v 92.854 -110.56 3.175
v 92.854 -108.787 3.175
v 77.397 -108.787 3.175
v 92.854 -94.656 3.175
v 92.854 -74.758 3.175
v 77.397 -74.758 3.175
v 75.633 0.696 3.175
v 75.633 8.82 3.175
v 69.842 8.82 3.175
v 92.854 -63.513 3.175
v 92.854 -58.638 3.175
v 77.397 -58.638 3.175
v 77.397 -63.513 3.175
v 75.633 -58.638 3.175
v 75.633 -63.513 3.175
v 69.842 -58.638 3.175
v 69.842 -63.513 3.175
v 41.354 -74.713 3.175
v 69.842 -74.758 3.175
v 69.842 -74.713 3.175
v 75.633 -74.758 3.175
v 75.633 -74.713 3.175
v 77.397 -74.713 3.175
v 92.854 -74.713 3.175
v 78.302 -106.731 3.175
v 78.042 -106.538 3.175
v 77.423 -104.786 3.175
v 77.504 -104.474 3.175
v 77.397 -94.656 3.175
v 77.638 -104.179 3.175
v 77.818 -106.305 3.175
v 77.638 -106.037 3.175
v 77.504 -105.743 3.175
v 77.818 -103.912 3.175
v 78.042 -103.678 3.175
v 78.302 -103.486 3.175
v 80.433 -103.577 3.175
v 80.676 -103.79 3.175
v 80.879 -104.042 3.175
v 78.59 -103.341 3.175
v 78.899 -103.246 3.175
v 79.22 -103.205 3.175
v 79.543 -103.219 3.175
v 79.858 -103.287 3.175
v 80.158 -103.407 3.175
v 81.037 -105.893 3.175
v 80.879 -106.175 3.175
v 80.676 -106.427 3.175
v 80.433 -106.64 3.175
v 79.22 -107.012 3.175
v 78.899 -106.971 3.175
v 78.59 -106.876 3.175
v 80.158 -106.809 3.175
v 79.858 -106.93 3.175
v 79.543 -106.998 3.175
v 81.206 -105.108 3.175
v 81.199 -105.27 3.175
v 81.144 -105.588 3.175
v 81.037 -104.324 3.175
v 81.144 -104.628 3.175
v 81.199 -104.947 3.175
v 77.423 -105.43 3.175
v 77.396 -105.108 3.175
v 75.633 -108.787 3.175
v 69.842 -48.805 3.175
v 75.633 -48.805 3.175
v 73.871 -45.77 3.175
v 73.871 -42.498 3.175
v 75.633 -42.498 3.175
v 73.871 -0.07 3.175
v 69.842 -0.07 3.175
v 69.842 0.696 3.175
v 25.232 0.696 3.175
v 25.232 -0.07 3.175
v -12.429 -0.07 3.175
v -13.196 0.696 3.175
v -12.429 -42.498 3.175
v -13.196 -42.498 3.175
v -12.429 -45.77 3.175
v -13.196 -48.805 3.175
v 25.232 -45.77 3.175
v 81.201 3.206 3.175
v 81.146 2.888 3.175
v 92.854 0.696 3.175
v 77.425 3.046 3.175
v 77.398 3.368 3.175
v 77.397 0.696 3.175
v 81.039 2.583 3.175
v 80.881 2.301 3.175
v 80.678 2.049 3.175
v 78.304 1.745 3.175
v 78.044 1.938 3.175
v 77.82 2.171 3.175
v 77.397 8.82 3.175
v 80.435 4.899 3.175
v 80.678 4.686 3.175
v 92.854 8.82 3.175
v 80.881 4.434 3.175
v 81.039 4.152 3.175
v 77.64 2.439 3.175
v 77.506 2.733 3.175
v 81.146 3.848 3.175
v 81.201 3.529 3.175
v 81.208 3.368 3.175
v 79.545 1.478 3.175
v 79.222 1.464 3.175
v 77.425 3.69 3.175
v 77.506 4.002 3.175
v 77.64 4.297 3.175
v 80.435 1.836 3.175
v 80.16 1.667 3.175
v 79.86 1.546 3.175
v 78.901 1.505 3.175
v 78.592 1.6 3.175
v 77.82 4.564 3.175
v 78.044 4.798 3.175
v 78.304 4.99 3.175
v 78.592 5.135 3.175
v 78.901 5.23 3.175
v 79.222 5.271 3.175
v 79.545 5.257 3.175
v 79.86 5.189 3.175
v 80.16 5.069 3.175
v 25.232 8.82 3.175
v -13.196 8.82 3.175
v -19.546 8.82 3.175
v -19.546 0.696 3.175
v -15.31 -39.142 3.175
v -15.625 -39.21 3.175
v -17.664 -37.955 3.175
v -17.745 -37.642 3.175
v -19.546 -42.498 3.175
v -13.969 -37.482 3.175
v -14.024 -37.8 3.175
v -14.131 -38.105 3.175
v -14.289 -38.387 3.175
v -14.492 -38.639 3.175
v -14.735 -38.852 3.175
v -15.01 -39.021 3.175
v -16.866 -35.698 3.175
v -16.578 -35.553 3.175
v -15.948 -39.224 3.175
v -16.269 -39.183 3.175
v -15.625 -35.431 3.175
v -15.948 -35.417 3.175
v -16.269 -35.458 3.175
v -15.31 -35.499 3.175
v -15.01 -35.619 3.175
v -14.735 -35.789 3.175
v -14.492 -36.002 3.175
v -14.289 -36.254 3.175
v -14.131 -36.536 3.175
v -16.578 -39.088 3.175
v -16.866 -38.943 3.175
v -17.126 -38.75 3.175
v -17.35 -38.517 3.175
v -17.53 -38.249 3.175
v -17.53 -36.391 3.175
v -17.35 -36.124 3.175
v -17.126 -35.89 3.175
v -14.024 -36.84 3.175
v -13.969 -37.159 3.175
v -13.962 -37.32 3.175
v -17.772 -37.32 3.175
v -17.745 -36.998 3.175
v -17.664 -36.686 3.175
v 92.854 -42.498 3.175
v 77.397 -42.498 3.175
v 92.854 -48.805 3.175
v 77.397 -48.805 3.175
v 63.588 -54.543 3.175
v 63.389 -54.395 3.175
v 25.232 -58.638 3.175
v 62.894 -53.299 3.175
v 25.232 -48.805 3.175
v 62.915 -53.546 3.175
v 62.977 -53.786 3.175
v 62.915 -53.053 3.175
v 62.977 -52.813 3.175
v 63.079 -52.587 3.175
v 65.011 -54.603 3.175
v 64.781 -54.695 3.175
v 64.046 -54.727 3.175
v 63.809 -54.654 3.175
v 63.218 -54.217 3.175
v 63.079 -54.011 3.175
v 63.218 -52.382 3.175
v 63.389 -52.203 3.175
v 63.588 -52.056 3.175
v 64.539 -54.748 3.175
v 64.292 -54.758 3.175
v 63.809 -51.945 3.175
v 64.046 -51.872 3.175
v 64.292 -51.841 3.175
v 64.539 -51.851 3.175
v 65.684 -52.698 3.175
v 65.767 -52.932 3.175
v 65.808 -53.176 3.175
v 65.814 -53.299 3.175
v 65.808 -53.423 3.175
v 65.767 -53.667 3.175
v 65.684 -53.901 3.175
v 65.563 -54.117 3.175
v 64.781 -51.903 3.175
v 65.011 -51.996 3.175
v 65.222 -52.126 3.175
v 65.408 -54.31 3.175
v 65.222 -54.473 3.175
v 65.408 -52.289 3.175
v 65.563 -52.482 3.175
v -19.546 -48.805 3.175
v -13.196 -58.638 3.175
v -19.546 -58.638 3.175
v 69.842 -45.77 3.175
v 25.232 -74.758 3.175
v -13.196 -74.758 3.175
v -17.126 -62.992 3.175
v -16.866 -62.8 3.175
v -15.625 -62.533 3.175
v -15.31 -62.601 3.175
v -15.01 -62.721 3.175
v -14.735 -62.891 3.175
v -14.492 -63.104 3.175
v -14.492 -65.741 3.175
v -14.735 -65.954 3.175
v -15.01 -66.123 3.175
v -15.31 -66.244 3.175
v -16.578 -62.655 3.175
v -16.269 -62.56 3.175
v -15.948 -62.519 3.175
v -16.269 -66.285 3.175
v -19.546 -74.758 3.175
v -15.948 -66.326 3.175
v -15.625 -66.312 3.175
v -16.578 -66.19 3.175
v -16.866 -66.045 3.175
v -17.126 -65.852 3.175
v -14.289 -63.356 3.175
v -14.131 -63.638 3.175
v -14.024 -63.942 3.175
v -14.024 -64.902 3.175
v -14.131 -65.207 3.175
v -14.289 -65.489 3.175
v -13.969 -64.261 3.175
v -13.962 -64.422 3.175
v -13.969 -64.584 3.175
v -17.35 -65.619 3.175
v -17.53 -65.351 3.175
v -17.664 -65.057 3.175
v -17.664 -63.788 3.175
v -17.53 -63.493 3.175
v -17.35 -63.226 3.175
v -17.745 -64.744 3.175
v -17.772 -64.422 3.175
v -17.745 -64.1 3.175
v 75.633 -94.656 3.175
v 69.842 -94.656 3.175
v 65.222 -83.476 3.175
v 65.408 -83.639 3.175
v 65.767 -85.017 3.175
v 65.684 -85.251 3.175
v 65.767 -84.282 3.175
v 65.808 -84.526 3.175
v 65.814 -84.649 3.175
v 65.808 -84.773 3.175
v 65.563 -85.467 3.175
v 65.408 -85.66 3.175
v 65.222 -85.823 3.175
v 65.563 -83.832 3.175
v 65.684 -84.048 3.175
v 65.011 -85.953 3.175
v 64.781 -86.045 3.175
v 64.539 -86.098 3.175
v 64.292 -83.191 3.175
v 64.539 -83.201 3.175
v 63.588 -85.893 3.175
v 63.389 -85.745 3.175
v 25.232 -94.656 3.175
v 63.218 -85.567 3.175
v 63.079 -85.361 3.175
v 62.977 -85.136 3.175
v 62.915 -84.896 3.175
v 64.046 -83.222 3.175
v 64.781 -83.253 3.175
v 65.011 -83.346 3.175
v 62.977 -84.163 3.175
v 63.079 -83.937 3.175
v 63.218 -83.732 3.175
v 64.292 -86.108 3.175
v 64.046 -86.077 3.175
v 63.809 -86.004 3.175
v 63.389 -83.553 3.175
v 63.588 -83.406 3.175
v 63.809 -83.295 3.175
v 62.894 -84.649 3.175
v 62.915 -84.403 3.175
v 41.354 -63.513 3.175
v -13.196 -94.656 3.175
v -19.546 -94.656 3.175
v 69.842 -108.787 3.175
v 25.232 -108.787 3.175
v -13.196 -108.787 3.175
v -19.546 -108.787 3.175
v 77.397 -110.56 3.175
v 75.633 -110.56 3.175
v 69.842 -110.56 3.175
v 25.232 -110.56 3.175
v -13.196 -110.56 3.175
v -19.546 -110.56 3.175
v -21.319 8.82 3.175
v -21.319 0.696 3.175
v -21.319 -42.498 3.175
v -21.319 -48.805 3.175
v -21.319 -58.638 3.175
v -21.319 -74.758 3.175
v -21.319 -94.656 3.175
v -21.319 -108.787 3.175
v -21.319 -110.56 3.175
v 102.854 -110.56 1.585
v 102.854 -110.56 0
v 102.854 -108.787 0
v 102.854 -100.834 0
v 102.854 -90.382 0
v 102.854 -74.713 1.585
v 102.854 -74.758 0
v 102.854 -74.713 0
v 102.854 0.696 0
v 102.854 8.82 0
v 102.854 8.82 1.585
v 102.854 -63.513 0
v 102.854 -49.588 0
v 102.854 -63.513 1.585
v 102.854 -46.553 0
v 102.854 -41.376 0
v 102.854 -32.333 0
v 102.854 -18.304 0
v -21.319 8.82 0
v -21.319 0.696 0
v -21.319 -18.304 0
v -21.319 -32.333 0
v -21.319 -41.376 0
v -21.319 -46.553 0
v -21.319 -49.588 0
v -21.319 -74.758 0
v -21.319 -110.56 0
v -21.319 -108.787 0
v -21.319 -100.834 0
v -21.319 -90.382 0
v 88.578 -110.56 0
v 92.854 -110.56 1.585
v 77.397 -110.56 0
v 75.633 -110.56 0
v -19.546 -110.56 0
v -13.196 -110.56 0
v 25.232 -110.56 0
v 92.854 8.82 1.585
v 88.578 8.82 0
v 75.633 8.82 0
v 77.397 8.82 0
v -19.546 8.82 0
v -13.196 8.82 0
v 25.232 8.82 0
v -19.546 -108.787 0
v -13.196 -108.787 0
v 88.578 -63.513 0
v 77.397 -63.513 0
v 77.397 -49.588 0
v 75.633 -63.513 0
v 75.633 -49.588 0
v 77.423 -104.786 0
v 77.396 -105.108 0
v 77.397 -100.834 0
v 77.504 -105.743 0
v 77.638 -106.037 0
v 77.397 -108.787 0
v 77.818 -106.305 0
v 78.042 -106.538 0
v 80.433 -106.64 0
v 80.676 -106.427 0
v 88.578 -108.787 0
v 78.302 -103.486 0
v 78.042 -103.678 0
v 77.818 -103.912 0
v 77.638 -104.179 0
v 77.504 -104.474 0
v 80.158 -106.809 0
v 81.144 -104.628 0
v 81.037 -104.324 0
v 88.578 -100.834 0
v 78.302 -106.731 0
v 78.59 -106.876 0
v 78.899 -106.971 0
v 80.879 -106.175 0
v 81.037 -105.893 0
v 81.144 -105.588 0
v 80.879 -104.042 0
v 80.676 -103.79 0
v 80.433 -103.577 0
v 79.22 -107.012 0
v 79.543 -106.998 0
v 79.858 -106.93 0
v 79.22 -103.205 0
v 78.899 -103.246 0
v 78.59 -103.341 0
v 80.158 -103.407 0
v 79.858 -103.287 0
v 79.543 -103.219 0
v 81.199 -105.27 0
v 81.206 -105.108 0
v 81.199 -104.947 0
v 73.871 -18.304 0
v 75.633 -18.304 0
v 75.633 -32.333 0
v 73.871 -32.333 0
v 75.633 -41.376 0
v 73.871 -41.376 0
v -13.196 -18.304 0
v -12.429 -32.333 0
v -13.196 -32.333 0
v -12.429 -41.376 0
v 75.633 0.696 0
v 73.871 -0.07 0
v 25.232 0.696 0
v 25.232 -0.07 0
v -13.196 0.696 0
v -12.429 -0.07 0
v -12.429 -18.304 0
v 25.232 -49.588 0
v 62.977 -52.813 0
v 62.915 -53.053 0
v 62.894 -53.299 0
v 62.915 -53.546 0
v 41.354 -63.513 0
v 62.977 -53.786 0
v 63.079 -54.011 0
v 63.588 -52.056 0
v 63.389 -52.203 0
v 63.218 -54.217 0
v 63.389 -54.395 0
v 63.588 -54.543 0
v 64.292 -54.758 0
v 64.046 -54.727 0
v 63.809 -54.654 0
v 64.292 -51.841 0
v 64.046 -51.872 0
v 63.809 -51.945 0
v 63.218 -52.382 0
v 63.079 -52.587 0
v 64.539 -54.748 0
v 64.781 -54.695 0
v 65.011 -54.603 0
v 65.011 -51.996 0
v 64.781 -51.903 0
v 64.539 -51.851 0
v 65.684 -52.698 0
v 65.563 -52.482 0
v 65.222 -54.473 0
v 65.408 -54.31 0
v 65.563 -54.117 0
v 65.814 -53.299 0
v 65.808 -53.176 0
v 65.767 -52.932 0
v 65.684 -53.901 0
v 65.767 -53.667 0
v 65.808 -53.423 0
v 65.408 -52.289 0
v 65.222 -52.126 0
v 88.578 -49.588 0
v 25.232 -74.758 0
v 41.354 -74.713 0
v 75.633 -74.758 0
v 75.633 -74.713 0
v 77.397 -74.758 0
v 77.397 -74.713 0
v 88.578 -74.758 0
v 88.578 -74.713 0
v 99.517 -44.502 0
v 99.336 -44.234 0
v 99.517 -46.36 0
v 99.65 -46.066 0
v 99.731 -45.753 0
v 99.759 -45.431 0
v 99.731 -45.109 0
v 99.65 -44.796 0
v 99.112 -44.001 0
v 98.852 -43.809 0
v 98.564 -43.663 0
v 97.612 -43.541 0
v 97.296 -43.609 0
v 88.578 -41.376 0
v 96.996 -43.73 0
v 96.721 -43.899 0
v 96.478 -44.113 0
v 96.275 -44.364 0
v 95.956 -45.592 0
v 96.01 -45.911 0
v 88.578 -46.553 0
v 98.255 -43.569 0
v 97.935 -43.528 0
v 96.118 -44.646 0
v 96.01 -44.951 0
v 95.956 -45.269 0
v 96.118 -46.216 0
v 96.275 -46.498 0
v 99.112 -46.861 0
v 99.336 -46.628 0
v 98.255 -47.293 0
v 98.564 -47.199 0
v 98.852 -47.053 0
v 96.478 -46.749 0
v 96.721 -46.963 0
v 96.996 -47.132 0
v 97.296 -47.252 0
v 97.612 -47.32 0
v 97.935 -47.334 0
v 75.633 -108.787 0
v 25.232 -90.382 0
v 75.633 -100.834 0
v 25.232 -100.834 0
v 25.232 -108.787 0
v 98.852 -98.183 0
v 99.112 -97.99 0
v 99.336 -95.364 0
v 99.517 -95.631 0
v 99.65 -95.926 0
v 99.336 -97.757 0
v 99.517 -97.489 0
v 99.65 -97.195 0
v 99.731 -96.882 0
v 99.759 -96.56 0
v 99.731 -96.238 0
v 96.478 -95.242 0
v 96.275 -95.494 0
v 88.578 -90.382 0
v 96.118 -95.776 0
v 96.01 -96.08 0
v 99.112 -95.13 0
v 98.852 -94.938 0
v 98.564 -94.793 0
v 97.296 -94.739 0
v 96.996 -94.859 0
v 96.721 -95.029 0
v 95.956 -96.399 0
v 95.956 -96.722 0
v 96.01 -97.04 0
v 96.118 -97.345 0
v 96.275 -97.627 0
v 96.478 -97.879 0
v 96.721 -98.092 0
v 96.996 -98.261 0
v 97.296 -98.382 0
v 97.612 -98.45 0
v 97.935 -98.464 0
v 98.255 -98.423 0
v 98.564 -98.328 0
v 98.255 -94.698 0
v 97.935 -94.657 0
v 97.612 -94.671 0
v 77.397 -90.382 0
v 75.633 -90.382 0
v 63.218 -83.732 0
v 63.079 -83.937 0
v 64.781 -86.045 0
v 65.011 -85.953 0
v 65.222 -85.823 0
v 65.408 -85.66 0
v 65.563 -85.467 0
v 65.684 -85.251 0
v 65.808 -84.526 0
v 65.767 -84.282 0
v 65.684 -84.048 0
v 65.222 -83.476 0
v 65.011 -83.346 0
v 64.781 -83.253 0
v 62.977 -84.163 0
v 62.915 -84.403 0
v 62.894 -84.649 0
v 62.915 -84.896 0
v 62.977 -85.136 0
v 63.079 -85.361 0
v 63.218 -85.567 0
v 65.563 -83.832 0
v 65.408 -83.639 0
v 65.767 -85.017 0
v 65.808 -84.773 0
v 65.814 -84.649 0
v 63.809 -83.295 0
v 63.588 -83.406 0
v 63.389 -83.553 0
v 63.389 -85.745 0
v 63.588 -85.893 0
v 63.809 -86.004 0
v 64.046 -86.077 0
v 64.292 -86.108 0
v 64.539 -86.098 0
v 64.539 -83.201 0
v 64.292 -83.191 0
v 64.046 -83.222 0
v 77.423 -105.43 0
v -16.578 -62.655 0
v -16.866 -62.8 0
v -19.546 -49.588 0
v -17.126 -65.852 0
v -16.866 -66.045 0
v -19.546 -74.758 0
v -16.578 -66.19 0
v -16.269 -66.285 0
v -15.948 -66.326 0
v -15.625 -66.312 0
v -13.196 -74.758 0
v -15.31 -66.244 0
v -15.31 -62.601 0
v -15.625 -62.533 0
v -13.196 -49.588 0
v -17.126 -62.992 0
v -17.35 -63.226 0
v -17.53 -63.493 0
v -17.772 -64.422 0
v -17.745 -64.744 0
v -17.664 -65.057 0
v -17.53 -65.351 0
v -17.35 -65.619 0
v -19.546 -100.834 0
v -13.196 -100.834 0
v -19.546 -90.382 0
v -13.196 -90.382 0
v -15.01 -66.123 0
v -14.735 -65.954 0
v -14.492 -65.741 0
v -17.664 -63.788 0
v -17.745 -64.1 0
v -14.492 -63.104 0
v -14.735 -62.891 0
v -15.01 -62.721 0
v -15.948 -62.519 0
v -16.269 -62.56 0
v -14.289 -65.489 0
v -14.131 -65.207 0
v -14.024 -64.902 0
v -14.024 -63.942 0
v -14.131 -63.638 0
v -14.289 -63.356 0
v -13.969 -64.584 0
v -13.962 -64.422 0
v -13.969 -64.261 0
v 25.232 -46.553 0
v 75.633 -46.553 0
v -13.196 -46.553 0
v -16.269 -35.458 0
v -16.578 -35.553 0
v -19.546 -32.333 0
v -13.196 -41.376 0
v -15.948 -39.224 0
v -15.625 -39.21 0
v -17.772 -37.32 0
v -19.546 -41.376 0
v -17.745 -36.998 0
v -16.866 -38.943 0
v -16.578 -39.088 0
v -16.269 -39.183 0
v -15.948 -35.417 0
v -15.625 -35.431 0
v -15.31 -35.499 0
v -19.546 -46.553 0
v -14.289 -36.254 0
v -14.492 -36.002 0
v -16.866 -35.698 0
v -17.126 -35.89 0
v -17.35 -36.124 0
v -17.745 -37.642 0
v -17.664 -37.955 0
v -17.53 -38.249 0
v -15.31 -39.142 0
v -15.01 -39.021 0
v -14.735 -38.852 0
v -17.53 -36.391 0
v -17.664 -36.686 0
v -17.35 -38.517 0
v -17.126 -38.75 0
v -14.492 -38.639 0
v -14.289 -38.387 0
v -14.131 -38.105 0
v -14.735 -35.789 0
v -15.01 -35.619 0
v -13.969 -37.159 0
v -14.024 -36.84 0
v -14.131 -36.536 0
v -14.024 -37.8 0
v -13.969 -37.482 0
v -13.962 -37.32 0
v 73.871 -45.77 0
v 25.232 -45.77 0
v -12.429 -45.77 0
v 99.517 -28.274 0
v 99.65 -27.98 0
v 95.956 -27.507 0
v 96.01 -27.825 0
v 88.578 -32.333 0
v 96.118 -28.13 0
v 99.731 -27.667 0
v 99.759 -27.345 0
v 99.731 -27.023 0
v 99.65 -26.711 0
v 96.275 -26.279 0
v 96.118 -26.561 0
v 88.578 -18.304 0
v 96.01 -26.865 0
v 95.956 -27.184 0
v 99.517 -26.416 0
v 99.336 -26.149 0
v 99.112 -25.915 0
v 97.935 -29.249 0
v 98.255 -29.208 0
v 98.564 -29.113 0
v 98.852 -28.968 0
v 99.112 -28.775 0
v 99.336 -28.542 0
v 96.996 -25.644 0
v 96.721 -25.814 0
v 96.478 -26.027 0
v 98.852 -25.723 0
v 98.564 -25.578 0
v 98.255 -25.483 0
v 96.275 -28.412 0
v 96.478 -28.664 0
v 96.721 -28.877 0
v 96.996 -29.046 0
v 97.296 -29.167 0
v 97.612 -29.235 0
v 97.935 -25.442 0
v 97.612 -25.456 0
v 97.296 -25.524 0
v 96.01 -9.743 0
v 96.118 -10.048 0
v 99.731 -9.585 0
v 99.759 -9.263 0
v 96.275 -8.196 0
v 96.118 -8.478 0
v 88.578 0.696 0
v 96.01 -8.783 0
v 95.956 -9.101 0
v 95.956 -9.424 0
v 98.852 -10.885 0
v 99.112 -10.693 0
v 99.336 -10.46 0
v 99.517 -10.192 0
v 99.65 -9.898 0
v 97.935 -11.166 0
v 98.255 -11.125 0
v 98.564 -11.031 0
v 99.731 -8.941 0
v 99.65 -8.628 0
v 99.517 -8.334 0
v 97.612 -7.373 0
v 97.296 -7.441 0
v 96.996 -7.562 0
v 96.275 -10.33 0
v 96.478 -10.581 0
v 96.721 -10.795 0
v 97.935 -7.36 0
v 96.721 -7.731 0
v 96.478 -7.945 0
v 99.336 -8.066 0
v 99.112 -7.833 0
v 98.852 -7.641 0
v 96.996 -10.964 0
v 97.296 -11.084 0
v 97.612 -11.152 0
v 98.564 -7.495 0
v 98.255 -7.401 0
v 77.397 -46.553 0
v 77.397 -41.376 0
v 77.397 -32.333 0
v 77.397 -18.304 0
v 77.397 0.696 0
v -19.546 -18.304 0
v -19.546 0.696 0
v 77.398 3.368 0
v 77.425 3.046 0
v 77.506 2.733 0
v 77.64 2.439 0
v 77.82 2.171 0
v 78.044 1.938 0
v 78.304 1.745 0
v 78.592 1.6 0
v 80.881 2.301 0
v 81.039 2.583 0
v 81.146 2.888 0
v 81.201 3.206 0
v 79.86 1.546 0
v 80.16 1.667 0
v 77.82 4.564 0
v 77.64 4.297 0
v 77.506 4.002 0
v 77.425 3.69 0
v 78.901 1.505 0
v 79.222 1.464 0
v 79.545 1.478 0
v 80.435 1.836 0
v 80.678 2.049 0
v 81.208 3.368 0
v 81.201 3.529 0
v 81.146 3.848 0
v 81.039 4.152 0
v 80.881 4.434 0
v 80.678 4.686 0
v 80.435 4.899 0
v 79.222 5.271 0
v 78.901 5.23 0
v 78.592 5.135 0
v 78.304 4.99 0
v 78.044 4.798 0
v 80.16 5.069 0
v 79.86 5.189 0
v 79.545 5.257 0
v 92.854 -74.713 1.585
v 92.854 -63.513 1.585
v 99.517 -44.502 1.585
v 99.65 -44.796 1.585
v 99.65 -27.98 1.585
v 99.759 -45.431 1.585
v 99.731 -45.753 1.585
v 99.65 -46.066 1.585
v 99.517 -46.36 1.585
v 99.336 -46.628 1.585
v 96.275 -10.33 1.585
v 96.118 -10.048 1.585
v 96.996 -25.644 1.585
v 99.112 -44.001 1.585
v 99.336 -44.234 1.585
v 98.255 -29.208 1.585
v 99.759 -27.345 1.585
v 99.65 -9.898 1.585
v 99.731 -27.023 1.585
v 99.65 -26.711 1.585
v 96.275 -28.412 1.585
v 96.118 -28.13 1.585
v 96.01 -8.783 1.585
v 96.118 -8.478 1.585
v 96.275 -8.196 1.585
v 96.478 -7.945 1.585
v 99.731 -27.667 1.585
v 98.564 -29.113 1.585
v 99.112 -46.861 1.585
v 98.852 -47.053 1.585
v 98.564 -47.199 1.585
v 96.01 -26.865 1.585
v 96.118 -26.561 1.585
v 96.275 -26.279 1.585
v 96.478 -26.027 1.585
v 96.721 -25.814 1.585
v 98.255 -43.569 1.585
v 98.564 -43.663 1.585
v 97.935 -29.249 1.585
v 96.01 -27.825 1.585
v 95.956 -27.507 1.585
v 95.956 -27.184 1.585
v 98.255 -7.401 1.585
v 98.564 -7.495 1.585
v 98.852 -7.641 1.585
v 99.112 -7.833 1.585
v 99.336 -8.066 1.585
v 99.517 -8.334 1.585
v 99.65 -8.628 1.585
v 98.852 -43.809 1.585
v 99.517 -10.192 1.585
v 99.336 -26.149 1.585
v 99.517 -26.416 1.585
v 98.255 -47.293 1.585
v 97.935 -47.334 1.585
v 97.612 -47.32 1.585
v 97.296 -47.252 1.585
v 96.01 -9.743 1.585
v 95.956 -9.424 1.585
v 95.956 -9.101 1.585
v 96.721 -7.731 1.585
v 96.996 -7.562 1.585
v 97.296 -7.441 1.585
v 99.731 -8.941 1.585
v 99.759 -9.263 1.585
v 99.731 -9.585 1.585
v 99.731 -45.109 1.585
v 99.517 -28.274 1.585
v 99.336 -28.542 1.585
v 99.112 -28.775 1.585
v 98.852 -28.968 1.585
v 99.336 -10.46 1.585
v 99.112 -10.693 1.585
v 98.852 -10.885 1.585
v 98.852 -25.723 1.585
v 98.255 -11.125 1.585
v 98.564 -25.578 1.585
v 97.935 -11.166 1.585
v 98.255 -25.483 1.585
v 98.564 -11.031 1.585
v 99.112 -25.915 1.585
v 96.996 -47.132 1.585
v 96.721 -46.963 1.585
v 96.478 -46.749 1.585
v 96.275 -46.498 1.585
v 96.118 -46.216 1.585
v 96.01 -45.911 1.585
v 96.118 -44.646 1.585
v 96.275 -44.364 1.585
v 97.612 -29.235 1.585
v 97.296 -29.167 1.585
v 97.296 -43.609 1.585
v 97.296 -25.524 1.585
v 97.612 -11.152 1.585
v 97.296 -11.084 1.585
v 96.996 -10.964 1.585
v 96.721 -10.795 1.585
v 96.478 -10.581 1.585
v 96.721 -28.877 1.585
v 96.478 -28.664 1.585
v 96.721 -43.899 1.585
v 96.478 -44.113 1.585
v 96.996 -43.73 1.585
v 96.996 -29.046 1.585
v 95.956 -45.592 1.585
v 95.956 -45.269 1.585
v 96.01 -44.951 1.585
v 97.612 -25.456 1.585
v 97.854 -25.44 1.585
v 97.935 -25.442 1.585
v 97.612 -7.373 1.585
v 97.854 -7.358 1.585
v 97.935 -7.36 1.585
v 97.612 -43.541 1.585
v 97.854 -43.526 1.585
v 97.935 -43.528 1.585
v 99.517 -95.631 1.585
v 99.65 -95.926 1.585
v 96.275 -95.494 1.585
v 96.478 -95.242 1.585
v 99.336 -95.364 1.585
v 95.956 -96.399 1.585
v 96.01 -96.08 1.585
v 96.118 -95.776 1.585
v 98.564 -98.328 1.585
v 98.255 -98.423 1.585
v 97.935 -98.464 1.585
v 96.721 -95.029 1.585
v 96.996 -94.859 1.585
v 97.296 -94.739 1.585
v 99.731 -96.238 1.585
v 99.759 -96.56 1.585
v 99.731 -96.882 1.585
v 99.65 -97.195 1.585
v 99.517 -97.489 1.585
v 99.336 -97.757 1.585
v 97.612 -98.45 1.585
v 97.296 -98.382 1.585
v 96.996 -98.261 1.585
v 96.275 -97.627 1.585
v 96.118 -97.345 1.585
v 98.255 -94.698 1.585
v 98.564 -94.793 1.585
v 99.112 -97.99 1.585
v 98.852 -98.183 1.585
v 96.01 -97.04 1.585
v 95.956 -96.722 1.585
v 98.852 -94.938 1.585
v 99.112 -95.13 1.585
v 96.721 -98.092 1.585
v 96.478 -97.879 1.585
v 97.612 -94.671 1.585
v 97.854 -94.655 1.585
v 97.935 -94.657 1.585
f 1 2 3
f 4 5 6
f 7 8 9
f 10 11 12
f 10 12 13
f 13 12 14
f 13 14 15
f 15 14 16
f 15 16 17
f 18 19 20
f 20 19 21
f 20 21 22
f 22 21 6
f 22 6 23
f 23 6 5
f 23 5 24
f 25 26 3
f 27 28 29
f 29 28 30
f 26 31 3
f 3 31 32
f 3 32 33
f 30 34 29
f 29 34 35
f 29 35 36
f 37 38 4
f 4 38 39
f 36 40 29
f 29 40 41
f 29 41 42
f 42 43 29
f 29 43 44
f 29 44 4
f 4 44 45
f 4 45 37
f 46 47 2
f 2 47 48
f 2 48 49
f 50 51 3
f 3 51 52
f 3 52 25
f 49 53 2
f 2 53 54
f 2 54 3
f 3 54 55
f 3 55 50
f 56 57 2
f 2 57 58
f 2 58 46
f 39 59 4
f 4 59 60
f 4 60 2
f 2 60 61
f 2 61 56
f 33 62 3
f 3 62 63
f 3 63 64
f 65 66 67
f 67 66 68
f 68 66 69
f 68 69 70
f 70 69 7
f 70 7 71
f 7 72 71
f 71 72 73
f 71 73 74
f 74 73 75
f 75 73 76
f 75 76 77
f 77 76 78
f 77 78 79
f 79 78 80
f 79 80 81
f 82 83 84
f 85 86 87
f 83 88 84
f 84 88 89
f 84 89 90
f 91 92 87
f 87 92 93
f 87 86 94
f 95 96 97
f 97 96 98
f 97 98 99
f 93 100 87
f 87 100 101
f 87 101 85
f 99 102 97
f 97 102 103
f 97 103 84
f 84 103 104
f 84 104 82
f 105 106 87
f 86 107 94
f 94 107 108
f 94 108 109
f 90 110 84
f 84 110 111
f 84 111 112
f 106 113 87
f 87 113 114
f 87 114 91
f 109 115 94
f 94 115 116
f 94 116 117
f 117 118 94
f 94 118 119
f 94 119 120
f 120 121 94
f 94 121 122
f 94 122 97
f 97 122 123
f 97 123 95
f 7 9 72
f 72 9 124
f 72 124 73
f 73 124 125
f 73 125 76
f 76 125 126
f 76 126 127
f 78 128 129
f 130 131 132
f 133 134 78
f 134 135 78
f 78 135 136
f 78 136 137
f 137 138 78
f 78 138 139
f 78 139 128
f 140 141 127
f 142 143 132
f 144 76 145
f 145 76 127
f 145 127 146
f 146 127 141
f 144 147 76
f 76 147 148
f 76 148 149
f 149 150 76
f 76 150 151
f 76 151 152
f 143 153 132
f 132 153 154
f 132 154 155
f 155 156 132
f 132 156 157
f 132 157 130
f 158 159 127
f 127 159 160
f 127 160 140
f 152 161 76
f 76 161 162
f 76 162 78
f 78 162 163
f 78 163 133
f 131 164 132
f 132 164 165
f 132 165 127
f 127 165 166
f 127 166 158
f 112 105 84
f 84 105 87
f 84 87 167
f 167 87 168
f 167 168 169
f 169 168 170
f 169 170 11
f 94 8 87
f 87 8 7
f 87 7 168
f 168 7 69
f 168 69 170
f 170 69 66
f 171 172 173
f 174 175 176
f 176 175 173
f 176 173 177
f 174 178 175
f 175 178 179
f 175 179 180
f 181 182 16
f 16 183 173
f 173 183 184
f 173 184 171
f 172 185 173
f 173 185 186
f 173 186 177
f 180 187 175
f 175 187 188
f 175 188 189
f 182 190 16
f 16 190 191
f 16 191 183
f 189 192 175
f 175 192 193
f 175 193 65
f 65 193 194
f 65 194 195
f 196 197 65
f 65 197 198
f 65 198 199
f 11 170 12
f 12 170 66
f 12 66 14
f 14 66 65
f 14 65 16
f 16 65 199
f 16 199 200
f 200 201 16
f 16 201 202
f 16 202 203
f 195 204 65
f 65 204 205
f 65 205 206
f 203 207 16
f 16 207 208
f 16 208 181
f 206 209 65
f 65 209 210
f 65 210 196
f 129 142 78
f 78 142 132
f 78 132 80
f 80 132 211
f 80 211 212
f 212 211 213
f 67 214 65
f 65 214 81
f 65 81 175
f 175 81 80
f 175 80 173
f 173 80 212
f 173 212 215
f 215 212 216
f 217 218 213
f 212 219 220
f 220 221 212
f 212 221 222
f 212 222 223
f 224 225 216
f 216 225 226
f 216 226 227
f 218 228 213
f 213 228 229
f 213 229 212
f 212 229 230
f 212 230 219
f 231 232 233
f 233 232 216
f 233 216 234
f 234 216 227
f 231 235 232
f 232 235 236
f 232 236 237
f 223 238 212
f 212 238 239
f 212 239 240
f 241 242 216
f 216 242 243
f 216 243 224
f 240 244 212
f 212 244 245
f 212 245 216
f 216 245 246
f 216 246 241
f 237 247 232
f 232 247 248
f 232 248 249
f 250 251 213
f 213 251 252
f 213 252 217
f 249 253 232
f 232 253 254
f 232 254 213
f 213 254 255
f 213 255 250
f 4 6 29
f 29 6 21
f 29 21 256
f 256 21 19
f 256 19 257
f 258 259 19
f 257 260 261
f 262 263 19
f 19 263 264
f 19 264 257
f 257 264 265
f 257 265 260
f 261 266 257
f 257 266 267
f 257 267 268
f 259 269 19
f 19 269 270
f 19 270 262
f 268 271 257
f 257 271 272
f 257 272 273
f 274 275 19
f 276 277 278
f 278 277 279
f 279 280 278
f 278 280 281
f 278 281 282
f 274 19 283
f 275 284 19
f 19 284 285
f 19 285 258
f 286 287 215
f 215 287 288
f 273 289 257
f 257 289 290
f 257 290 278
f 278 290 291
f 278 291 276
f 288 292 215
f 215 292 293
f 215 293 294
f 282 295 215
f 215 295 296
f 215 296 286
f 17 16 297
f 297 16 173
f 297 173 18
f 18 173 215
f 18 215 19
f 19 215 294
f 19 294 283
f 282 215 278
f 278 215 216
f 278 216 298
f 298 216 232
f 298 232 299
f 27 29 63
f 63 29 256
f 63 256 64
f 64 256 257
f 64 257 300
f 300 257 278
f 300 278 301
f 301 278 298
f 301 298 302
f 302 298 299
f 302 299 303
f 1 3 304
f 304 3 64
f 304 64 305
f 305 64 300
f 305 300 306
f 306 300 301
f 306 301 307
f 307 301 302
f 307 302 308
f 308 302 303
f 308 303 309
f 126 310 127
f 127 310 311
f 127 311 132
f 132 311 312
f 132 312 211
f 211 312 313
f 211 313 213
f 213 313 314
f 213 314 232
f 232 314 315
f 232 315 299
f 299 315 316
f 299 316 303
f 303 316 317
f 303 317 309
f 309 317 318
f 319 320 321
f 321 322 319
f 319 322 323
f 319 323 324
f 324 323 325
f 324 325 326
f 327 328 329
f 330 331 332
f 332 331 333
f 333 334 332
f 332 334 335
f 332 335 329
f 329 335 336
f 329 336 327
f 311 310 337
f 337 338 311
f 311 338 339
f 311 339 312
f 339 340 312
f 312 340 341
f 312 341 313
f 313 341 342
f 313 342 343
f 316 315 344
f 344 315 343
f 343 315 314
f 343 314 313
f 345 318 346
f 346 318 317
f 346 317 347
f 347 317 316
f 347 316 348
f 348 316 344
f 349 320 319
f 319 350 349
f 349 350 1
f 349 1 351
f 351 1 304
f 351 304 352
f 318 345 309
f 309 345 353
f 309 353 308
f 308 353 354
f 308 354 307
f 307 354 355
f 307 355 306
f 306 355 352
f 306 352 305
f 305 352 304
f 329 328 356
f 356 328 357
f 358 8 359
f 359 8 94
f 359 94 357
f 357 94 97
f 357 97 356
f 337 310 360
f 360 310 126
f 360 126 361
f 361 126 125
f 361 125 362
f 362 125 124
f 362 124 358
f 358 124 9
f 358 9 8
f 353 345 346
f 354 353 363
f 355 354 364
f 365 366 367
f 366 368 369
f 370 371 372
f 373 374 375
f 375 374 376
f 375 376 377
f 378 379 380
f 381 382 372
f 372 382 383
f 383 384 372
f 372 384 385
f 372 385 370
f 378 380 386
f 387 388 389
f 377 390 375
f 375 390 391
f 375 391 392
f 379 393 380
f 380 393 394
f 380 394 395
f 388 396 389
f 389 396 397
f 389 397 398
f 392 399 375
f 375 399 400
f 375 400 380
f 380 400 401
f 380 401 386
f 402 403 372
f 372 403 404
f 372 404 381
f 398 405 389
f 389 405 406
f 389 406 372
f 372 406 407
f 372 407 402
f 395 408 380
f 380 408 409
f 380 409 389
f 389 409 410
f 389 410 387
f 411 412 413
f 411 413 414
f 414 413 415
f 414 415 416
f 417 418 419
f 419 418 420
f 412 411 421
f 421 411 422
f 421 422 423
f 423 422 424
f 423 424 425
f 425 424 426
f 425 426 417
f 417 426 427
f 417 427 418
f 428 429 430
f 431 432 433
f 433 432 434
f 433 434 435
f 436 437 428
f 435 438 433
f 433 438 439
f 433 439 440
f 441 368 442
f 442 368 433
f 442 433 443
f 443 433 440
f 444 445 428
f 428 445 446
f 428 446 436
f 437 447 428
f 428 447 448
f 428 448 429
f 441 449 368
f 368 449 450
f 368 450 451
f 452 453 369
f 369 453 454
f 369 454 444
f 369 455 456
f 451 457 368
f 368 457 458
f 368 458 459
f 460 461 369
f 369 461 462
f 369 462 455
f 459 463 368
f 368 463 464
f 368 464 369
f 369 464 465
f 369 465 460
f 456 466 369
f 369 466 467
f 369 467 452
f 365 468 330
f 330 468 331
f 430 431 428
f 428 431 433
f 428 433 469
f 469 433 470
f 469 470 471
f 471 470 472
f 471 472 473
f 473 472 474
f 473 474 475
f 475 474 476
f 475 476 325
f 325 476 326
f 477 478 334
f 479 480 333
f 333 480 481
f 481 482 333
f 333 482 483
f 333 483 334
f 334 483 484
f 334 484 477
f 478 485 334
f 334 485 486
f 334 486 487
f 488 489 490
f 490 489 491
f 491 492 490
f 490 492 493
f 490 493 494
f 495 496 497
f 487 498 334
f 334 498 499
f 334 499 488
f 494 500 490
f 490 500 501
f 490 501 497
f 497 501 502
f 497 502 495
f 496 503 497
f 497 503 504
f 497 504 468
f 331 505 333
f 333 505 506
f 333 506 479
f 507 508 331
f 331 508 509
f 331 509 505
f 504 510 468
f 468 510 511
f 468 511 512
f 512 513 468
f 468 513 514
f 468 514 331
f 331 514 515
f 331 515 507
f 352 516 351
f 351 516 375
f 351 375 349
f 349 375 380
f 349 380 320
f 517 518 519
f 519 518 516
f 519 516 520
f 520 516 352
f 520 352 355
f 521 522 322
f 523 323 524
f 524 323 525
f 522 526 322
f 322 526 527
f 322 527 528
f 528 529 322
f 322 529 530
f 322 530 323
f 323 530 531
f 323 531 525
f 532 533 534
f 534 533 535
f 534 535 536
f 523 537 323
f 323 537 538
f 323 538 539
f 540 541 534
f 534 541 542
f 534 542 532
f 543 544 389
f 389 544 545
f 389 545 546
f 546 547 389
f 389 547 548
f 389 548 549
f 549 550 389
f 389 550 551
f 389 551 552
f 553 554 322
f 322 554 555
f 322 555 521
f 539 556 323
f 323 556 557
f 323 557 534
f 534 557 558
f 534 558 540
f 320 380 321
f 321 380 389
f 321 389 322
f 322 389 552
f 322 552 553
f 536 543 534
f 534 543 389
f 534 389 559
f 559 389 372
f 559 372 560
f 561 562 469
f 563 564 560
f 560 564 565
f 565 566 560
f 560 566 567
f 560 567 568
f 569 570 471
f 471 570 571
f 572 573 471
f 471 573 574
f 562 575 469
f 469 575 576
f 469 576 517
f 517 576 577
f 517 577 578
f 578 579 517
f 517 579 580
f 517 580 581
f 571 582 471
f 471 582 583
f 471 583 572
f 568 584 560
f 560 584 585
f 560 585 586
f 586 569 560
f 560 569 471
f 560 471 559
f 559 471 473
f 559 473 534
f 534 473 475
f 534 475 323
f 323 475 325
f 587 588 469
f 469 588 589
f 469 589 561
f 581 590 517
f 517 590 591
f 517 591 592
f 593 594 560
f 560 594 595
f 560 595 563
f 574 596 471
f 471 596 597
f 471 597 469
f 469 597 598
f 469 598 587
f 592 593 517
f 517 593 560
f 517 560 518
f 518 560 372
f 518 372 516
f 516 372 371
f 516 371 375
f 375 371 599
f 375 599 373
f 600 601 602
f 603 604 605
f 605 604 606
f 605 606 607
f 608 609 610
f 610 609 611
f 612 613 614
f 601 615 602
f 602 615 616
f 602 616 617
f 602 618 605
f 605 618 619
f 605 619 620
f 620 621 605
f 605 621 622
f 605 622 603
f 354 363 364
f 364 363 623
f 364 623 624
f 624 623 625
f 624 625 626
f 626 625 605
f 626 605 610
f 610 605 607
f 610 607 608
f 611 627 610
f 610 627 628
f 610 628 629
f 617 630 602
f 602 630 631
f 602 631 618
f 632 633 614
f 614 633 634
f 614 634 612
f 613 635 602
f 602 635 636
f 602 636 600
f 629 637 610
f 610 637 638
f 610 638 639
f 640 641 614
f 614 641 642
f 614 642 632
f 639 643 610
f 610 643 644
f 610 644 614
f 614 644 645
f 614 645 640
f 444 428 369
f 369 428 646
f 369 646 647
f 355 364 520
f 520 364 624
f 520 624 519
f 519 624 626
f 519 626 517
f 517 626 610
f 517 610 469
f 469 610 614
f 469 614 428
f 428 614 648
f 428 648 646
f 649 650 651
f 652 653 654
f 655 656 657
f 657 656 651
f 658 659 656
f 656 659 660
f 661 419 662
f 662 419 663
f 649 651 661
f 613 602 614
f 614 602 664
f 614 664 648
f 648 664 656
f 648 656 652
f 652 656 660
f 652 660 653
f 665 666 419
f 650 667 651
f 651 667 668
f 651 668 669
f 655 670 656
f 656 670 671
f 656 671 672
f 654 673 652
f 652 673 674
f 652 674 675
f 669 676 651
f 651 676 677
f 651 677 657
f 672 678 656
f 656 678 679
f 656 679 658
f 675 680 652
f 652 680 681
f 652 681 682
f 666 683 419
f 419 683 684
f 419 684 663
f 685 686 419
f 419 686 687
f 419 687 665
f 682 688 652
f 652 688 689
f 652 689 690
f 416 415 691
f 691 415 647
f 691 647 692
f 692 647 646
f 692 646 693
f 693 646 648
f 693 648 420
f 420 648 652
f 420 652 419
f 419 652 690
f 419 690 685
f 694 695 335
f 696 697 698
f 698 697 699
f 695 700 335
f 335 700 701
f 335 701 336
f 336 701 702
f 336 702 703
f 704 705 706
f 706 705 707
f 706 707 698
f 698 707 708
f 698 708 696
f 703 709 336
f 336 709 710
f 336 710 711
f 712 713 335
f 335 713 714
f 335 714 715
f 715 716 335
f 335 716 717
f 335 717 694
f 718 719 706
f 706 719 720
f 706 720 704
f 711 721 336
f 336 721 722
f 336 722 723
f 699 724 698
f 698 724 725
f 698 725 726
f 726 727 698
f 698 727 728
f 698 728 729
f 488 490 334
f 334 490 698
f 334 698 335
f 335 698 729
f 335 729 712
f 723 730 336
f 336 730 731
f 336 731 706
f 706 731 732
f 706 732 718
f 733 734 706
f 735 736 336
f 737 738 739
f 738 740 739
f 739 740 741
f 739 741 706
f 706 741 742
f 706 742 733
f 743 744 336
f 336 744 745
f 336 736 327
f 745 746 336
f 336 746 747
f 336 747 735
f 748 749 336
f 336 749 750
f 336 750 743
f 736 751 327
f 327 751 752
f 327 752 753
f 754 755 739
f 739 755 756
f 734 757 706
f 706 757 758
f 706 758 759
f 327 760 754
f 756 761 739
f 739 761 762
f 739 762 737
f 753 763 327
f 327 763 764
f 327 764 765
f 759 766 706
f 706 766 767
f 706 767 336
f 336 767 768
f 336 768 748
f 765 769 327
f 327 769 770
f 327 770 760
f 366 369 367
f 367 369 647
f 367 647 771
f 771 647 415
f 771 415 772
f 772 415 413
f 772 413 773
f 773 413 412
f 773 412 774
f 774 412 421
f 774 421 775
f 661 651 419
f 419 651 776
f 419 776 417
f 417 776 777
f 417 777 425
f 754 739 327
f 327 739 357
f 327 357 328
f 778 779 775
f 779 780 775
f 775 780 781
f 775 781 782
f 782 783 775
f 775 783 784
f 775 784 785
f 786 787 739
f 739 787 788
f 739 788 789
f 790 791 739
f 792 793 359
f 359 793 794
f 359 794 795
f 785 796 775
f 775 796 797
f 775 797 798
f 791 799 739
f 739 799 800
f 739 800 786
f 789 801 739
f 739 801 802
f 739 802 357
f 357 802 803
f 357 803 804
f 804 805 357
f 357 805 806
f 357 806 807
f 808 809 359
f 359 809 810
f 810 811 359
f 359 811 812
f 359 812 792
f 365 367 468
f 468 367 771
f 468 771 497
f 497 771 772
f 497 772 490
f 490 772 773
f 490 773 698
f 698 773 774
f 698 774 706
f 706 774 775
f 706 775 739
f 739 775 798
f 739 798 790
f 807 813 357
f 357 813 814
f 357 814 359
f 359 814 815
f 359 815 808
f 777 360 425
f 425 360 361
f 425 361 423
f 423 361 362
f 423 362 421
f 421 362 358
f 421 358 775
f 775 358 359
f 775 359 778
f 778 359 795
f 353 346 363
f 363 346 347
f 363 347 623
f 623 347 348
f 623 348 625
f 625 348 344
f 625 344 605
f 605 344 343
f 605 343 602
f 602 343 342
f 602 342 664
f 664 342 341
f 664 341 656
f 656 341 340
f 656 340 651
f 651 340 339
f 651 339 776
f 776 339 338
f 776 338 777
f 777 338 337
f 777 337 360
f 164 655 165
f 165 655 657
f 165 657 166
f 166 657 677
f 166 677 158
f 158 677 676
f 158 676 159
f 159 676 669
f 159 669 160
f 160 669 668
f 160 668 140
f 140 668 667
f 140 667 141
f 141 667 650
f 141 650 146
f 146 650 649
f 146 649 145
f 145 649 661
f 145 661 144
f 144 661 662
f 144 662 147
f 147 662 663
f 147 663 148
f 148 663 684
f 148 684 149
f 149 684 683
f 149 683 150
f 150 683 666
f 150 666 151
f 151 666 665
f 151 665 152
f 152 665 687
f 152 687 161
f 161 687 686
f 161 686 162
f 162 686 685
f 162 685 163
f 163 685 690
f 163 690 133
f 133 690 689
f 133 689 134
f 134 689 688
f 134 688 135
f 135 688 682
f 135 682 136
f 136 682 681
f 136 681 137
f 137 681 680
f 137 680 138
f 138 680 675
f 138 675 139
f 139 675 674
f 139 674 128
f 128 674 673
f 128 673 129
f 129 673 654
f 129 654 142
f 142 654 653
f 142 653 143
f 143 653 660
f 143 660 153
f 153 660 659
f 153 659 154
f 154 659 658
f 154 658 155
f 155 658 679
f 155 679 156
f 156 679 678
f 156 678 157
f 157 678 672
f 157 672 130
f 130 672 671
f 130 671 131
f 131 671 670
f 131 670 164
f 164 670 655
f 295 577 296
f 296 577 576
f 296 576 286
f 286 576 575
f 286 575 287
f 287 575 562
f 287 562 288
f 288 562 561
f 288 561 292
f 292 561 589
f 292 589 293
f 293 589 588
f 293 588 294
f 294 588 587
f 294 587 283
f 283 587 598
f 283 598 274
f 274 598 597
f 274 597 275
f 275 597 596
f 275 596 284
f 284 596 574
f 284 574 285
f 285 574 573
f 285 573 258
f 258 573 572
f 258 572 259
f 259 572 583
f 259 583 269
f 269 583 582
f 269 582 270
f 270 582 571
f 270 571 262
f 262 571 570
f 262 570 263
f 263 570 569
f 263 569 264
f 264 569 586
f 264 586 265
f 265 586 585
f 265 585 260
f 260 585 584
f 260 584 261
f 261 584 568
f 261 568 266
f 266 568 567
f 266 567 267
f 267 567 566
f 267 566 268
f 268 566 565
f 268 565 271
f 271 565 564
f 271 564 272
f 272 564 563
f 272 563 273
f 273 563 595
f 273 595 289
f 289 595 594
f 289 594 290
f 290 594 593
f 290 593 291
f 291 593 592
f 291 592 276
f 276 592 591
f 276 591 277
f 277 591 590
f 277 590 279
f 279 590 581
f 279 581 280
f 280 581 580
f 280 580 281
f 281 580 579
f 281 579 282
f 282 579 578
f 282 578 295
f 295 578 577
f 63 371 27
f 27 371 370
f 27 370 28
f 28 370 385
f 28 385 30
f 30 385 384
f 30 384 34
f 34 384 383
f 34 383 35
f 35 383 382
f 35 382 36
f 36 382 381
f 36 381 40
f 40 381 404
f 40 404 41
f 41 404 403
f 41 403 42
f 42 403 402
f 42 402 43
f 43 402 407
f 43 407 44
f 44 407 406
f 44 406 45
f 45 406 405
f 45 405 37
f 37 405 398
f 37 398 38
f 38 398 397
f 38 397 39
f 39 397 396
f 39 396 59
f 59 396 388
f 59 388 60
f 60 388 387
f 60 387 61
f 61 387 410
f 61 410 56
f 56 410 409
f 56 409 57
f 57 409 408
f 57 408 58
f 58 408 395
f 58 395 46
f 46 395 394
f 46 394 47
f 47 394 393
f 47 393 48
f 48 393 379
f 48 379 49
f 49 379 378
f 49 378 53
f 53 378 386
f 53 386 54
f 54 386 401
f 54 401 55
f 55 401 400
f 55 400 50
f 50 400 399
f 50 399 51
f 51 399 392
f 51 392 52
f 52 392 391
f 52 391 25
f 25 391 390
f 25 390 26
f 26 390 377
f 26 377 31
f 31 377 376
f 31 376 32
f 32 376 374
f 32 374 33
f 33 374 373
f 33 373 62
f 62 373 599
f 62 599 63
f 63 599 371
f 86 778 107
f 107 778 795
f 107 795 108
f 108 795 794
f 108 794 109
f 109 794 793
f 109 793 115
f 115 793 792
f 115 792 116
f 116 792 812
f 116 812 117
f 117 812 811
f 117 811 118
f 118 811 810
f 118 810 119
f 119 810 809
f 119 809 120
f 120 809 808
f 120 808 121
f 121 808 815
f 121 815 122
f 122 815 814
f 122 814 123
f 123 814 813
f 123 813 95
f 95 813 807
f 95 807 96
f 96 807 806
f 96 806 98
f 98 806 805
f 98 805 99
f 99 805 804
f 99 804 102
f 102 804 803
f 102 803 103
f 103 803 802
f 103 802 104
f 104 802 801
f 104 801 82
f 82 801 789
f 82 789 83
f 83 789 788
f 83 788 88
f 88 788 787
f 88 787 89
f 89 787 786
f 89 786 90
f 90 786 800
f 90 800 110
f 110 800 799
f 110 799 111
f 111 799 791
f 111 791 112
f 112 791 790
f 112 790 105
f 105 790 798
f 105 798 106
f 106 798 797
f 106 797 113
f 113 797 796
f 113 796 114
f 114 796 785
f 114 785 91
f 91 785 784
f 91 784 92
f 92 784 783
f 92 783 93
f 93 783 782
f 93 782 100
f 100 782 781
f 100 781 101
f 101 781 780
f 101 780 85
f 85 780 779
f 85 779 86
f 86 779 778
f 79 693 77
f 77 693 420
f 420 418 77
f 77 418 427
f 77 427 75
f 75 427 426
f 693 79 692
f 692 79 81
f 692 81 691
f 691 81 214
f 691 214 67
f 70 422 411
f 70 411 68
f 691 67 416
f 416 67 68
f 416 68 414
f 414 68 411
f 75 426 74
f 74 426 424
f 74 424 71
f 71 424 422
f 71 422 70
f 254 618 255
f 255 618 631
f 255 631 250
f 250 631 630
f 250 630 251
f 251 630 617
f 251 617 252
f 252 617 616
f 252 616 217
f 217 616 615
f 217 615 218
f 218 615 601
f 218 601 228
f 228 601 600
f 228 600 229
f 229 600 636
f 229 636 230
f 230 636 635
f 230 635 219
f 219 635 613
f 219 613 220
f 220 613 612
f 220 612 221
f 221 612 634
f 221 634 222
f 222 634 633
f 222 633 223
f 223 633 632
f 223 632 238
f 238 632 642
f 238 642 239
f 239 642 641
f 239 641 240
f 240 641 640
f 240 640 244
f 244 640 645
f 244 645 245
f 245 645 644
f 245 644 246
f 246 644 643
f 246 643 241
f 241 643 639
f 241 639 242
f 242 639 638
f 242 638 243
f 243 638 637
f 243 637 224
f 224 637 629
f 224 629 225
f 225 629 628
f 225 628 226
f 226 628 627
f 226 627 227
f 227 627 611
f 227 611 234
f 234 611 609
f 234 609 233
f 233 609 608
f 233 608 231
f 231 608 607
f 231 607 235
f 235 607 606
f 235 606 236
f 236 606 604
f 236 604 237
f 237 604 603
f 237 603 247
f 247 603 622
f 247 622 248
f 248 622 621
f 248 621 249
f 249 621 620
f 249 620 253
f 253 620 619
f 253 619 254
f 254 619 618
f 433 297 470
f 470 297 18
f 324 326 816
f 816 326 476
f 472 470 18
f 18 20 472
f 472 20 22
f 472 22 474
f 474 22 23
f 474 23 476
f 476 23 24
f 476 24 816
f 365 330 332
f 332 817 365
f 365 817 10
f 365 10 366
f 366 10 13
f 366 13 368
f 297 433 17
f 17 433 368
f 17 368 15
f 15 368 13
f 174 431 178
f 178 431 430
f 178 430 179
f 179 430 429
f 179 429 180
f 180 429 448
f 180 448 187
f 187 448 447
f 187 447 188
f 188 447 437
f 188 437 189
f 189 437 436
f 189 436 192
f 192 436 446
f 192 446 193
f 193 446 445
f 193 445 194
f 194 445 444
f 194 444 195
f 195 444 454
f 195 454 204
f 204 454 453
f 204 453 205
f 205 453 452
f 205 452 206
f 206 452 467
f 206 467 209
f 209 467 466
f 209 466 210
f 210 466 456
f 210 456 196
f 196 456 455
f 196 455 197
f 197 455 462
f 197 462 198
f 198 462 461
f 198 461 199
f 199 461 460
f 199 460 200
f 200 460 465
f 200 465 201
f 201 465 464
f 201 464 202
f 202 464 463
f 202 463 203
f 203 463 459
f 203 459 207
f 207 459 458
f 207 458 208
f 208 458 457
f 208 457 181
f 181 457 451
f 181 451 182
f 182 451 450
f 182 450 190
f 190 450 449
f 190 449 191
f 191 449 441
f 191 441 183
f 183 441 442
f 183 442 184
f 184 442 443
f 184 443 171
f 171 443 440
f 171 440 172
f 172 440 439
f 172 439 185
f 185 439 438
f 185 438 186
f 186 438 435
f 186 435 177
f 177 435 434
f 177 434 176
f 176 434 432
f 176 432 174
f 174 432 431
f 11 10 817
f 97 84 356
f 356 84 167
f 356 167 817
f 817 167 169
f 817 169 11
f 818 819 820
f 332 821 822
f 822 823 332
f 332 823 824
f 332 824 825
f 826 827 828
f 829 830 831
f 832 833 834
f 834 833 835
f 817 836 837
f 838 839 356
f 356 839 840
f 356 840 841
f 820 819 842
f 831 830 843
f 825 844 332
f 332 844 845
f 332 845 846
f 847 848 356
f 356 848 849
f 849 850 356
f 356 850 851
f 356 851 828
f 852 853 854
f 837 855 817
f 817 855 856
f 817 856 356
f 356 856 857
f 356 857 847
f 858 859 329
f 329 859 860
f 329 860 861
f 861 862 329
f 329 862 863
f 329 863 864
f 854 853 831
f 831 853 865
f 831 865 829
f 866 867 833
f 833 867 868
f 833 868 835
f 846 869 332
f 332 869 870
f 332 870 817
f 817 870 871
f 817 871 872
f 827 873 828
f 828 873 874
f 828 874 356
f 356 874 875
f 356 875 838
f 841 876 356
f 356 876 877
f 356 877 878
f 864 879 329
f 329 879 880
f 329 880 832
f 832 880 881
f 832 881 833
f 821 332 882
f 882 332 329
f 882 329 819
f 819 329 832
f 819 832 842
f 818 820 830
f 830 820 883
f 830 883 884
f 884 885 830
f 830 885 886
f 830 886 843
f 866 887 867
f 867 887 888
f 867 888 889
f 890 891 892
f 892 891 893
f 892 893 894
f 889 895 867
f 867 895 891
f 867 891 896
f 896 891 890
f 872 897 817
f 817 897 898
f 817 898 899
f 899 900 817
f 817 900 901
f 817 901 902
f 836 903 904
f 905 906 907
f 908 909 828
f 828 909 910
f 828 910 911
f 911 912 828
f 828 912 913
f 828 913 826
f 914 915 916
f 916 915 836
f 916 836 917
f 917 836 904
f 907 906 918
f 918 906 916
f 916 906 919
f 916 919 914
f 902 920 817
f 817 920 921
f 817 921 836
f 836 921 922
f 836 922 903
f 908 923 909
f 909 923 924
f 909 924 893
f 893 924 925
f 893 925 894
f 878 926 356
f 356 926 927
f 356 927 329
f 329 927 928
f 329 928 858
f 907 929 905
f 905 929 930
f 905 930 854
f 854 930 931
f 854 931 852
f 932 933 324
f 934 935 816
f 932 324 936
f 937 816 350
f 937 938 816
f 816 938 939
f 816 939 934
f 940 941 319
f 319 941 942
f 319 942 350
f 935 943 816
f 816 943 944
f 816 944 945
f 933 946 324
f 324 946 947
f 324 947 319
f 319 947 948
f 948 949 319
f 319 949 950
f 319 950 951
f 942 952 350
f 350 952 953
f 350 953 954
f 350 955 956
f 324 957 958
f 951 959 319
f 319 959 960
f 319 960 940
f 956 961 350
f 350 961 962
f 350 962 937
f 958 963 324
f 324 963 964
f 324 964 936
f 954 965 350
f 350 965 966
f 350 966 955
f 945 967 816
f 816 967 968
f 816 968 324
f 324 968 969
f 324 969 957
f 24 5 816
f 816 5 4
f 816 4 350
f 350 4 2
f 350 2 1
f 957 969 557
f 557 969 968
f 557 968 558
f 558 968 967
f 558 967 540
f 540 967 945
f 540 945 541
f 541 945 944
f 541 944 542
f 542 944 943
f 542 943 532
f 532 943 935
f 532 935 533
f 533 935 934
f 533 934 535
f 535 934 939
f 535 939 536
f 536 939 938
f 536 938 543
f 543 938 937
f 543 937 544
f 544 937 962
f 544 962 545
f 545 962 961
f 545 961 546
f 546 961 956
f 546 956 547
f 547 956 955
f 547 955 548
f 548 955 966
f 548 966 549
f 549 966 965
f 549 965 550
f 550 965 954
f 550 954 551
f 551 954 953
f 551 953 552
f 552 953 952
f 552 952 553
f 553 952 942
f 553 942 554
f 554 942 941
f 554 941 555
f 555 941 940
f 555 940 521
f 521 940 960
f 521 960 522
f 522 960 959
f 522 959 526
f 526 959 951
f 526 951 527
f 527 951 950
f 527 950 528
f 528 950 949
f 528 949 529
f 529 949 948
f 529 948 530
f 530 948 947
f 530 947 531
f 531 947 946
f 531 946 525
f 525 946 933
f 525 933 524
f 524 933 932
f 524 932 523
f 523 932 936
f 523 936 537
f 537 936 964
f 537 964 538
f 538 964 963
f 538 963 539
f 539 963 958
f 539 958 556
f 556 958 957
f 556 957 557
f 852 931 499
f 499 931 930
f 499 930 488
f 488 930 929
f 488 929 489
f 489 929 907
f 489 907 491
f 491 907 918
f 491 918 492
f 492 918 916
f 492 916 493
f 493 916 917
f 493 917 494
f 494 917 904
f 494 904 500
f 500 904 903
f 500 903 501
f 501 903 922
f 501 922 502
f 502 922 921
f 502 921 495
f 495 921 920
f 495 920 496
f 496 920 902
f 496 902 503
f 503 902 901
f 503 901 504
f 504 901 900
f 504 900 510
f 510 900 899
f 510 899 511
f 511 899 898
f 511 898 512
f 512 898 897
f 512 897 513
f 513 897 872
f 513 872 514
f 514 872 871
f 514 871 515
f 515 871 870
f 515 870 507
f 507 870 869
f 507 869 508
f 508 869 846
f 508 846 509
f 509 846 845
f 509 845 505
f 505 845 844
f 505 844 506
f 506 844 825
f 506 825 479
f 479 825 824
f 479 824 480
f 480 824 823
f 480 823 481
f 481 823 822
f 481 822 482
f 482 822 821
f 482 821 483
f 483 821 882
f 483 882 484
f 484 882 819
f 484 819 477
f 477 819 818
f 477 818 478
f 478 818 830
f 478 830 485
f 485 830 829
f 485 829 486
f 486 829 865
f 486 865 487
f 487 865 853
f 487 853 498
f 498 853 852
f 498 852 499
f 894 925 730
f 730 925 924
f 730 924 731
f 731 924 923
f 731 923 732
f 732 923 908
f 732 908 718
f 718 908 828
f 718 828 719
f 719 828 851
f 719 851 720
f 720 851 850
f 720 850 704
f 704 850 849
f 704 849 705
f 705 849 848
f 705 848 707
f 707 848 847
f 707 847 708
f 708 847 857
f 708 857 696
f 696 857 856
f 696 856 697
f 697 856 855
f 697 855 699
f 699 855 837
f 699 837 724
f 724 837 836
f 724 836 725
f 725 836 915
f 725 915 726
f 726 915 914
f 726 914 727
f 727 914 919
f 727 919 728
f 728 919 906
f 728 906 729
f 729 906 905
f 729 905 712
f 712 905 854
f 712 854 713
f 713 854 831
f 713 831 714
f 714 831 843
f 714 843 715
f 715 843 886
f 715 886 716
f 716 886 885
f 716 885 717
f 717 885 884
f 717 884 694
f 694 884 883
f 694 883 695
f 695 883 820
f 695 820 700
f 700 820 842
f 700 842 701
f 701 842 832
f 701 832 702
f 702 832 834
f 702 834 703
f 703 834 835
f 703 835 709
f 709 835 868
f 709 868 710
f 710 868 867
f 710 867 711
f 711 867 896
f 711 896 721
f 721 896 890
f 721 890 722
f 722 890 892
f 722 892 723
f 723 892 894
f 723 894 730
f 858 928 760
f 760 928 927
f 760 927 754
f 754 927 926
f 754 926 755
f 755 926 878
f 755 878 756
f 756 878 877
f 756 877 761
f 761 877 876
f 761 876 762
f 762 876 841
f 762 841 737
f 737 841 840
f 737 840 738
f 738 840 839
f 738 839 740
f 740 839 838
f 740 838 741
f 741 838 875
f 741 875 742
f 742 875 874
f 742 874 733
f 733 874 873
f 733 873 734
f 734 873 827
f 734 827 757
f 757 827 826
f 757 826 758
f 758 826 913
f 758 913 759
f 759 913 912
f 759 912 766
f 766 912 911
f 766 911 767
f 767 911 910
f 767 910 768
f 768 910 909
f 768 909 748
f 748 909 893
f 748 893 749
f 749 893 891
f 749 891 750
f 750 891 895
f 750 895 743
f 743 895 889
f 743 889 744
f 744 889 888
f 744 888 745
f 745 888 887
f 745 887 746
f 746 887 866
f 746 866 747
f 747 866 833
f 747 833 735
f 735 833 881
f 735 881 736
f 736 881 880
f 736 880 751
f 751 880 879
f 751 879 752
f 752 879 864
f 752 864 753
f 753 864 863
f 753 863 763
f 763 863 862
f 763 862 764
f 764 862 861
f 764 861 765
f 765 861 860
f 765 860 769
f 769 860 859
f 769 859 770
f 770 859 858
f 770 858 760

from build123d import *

# Parameters (mm, degrees)
SKETCH2_W           = 124.173
SKETCH2_H           = 119.38
BOSS_EXTRUDE1_DEPTH = 3.175
SKETCH4_R           = 1.905
SKETCH4_R_2         = 1.46
SKETCH4_W           = 86.3
SKETCH4_H           = 45.7
SKETCH4_W_2         = 61.5
SKETCH4_H_2         = 11.2
CUT_EXTRUDE1_DEPTH  = 14.175
SKETCH10_W          = 1.59
SKETCH10_H          = 120
CUT_EXTRUDE3_DEPTH  = 10
SKETCH11_R          = 1.905
CUT_EXTRUDE4_DEPTH  = 10


with BuildPart() as part:
    # Sketch2 → Boss-Extrude1 (new body)
    with BuildSketch(Plane.XY):
        with Locations((40.767155738, -50.87039032)):
            Rectangle(SKETCH2_W, SKETCH2_H)
    extrude(amount=BOSS_EXTRUDE1_DEPTH)

    # Sketch4 → Cut-Extrude1 (cut)
    with BuildSketch(Plane.XY):
        with Locations((-15.867344262, -37.32039032)):
            Circle(SKETCH4_R)
        with Locations((-15.867344262, -64.42239032)):
            Circle(SKETCH4_R)
        with Locations((79.302655738, 3.36760968)):
            Circle(SKETCH4_R)
        with Locations((79.300655738, -105.10839032)):
            Circle(SKETCH4_R)
        with Locations((64.353655738, -53.29939032)):
            Circle(SKETCH4_R_2)
        with Locations((64.353655738, -84.64939032)):
            Circle(SKETCH4_R_2)
        with Locations((30.720655738, -22.92039032)):
            Rectangle(SKETCH4_W, SKETCH4_H)
        with Locations((72.103655738, -69.11339032)):
            Rectangle(SKETCH4_W_2, SKETCH4_H_2)
    extrude(amount=CUT_EXTRUDE1_DEPTH, mode=Mode.SUBTRACT)

    # Sketch10 → Cut-Extrude3 (cut)
    with BuildSketch(Plane(origin=(102.853655738, 0, 0), x_dir=(0, 0, -1), z_dir=(1, 0, 0))):
        with Locations((-2.380000064, -51.180389625)):
            Rectangle(SKETCH10_W, SKETCH10_H)
    extrude(amount=-CUT_EXTRUDE3_DEPTH, mode=Mode.SUBTRACT)

    # Sketch11 → Cut-Extrude4 (cut)
    with BuildSketch(Plane.XY.offset(3.175)):
        with Locations((97.853655738, -9.262889625)):
            Circle(SKETCH11_R)
        with Locations((97.853655738, -27.345389625)):
            Circle(SKETCH11_R)
        with Locations((97.853655738, -45.43089032)):
            Circle(SKETCH11_R)
        with Locations((97.853655738, -96.56039032)):
            Circle(SKETCH11_R)
    extrude(amount=-CUT_EXTRUDE4_DEPTH, mode=Mode.SUBTRACT)


solid = part.part
